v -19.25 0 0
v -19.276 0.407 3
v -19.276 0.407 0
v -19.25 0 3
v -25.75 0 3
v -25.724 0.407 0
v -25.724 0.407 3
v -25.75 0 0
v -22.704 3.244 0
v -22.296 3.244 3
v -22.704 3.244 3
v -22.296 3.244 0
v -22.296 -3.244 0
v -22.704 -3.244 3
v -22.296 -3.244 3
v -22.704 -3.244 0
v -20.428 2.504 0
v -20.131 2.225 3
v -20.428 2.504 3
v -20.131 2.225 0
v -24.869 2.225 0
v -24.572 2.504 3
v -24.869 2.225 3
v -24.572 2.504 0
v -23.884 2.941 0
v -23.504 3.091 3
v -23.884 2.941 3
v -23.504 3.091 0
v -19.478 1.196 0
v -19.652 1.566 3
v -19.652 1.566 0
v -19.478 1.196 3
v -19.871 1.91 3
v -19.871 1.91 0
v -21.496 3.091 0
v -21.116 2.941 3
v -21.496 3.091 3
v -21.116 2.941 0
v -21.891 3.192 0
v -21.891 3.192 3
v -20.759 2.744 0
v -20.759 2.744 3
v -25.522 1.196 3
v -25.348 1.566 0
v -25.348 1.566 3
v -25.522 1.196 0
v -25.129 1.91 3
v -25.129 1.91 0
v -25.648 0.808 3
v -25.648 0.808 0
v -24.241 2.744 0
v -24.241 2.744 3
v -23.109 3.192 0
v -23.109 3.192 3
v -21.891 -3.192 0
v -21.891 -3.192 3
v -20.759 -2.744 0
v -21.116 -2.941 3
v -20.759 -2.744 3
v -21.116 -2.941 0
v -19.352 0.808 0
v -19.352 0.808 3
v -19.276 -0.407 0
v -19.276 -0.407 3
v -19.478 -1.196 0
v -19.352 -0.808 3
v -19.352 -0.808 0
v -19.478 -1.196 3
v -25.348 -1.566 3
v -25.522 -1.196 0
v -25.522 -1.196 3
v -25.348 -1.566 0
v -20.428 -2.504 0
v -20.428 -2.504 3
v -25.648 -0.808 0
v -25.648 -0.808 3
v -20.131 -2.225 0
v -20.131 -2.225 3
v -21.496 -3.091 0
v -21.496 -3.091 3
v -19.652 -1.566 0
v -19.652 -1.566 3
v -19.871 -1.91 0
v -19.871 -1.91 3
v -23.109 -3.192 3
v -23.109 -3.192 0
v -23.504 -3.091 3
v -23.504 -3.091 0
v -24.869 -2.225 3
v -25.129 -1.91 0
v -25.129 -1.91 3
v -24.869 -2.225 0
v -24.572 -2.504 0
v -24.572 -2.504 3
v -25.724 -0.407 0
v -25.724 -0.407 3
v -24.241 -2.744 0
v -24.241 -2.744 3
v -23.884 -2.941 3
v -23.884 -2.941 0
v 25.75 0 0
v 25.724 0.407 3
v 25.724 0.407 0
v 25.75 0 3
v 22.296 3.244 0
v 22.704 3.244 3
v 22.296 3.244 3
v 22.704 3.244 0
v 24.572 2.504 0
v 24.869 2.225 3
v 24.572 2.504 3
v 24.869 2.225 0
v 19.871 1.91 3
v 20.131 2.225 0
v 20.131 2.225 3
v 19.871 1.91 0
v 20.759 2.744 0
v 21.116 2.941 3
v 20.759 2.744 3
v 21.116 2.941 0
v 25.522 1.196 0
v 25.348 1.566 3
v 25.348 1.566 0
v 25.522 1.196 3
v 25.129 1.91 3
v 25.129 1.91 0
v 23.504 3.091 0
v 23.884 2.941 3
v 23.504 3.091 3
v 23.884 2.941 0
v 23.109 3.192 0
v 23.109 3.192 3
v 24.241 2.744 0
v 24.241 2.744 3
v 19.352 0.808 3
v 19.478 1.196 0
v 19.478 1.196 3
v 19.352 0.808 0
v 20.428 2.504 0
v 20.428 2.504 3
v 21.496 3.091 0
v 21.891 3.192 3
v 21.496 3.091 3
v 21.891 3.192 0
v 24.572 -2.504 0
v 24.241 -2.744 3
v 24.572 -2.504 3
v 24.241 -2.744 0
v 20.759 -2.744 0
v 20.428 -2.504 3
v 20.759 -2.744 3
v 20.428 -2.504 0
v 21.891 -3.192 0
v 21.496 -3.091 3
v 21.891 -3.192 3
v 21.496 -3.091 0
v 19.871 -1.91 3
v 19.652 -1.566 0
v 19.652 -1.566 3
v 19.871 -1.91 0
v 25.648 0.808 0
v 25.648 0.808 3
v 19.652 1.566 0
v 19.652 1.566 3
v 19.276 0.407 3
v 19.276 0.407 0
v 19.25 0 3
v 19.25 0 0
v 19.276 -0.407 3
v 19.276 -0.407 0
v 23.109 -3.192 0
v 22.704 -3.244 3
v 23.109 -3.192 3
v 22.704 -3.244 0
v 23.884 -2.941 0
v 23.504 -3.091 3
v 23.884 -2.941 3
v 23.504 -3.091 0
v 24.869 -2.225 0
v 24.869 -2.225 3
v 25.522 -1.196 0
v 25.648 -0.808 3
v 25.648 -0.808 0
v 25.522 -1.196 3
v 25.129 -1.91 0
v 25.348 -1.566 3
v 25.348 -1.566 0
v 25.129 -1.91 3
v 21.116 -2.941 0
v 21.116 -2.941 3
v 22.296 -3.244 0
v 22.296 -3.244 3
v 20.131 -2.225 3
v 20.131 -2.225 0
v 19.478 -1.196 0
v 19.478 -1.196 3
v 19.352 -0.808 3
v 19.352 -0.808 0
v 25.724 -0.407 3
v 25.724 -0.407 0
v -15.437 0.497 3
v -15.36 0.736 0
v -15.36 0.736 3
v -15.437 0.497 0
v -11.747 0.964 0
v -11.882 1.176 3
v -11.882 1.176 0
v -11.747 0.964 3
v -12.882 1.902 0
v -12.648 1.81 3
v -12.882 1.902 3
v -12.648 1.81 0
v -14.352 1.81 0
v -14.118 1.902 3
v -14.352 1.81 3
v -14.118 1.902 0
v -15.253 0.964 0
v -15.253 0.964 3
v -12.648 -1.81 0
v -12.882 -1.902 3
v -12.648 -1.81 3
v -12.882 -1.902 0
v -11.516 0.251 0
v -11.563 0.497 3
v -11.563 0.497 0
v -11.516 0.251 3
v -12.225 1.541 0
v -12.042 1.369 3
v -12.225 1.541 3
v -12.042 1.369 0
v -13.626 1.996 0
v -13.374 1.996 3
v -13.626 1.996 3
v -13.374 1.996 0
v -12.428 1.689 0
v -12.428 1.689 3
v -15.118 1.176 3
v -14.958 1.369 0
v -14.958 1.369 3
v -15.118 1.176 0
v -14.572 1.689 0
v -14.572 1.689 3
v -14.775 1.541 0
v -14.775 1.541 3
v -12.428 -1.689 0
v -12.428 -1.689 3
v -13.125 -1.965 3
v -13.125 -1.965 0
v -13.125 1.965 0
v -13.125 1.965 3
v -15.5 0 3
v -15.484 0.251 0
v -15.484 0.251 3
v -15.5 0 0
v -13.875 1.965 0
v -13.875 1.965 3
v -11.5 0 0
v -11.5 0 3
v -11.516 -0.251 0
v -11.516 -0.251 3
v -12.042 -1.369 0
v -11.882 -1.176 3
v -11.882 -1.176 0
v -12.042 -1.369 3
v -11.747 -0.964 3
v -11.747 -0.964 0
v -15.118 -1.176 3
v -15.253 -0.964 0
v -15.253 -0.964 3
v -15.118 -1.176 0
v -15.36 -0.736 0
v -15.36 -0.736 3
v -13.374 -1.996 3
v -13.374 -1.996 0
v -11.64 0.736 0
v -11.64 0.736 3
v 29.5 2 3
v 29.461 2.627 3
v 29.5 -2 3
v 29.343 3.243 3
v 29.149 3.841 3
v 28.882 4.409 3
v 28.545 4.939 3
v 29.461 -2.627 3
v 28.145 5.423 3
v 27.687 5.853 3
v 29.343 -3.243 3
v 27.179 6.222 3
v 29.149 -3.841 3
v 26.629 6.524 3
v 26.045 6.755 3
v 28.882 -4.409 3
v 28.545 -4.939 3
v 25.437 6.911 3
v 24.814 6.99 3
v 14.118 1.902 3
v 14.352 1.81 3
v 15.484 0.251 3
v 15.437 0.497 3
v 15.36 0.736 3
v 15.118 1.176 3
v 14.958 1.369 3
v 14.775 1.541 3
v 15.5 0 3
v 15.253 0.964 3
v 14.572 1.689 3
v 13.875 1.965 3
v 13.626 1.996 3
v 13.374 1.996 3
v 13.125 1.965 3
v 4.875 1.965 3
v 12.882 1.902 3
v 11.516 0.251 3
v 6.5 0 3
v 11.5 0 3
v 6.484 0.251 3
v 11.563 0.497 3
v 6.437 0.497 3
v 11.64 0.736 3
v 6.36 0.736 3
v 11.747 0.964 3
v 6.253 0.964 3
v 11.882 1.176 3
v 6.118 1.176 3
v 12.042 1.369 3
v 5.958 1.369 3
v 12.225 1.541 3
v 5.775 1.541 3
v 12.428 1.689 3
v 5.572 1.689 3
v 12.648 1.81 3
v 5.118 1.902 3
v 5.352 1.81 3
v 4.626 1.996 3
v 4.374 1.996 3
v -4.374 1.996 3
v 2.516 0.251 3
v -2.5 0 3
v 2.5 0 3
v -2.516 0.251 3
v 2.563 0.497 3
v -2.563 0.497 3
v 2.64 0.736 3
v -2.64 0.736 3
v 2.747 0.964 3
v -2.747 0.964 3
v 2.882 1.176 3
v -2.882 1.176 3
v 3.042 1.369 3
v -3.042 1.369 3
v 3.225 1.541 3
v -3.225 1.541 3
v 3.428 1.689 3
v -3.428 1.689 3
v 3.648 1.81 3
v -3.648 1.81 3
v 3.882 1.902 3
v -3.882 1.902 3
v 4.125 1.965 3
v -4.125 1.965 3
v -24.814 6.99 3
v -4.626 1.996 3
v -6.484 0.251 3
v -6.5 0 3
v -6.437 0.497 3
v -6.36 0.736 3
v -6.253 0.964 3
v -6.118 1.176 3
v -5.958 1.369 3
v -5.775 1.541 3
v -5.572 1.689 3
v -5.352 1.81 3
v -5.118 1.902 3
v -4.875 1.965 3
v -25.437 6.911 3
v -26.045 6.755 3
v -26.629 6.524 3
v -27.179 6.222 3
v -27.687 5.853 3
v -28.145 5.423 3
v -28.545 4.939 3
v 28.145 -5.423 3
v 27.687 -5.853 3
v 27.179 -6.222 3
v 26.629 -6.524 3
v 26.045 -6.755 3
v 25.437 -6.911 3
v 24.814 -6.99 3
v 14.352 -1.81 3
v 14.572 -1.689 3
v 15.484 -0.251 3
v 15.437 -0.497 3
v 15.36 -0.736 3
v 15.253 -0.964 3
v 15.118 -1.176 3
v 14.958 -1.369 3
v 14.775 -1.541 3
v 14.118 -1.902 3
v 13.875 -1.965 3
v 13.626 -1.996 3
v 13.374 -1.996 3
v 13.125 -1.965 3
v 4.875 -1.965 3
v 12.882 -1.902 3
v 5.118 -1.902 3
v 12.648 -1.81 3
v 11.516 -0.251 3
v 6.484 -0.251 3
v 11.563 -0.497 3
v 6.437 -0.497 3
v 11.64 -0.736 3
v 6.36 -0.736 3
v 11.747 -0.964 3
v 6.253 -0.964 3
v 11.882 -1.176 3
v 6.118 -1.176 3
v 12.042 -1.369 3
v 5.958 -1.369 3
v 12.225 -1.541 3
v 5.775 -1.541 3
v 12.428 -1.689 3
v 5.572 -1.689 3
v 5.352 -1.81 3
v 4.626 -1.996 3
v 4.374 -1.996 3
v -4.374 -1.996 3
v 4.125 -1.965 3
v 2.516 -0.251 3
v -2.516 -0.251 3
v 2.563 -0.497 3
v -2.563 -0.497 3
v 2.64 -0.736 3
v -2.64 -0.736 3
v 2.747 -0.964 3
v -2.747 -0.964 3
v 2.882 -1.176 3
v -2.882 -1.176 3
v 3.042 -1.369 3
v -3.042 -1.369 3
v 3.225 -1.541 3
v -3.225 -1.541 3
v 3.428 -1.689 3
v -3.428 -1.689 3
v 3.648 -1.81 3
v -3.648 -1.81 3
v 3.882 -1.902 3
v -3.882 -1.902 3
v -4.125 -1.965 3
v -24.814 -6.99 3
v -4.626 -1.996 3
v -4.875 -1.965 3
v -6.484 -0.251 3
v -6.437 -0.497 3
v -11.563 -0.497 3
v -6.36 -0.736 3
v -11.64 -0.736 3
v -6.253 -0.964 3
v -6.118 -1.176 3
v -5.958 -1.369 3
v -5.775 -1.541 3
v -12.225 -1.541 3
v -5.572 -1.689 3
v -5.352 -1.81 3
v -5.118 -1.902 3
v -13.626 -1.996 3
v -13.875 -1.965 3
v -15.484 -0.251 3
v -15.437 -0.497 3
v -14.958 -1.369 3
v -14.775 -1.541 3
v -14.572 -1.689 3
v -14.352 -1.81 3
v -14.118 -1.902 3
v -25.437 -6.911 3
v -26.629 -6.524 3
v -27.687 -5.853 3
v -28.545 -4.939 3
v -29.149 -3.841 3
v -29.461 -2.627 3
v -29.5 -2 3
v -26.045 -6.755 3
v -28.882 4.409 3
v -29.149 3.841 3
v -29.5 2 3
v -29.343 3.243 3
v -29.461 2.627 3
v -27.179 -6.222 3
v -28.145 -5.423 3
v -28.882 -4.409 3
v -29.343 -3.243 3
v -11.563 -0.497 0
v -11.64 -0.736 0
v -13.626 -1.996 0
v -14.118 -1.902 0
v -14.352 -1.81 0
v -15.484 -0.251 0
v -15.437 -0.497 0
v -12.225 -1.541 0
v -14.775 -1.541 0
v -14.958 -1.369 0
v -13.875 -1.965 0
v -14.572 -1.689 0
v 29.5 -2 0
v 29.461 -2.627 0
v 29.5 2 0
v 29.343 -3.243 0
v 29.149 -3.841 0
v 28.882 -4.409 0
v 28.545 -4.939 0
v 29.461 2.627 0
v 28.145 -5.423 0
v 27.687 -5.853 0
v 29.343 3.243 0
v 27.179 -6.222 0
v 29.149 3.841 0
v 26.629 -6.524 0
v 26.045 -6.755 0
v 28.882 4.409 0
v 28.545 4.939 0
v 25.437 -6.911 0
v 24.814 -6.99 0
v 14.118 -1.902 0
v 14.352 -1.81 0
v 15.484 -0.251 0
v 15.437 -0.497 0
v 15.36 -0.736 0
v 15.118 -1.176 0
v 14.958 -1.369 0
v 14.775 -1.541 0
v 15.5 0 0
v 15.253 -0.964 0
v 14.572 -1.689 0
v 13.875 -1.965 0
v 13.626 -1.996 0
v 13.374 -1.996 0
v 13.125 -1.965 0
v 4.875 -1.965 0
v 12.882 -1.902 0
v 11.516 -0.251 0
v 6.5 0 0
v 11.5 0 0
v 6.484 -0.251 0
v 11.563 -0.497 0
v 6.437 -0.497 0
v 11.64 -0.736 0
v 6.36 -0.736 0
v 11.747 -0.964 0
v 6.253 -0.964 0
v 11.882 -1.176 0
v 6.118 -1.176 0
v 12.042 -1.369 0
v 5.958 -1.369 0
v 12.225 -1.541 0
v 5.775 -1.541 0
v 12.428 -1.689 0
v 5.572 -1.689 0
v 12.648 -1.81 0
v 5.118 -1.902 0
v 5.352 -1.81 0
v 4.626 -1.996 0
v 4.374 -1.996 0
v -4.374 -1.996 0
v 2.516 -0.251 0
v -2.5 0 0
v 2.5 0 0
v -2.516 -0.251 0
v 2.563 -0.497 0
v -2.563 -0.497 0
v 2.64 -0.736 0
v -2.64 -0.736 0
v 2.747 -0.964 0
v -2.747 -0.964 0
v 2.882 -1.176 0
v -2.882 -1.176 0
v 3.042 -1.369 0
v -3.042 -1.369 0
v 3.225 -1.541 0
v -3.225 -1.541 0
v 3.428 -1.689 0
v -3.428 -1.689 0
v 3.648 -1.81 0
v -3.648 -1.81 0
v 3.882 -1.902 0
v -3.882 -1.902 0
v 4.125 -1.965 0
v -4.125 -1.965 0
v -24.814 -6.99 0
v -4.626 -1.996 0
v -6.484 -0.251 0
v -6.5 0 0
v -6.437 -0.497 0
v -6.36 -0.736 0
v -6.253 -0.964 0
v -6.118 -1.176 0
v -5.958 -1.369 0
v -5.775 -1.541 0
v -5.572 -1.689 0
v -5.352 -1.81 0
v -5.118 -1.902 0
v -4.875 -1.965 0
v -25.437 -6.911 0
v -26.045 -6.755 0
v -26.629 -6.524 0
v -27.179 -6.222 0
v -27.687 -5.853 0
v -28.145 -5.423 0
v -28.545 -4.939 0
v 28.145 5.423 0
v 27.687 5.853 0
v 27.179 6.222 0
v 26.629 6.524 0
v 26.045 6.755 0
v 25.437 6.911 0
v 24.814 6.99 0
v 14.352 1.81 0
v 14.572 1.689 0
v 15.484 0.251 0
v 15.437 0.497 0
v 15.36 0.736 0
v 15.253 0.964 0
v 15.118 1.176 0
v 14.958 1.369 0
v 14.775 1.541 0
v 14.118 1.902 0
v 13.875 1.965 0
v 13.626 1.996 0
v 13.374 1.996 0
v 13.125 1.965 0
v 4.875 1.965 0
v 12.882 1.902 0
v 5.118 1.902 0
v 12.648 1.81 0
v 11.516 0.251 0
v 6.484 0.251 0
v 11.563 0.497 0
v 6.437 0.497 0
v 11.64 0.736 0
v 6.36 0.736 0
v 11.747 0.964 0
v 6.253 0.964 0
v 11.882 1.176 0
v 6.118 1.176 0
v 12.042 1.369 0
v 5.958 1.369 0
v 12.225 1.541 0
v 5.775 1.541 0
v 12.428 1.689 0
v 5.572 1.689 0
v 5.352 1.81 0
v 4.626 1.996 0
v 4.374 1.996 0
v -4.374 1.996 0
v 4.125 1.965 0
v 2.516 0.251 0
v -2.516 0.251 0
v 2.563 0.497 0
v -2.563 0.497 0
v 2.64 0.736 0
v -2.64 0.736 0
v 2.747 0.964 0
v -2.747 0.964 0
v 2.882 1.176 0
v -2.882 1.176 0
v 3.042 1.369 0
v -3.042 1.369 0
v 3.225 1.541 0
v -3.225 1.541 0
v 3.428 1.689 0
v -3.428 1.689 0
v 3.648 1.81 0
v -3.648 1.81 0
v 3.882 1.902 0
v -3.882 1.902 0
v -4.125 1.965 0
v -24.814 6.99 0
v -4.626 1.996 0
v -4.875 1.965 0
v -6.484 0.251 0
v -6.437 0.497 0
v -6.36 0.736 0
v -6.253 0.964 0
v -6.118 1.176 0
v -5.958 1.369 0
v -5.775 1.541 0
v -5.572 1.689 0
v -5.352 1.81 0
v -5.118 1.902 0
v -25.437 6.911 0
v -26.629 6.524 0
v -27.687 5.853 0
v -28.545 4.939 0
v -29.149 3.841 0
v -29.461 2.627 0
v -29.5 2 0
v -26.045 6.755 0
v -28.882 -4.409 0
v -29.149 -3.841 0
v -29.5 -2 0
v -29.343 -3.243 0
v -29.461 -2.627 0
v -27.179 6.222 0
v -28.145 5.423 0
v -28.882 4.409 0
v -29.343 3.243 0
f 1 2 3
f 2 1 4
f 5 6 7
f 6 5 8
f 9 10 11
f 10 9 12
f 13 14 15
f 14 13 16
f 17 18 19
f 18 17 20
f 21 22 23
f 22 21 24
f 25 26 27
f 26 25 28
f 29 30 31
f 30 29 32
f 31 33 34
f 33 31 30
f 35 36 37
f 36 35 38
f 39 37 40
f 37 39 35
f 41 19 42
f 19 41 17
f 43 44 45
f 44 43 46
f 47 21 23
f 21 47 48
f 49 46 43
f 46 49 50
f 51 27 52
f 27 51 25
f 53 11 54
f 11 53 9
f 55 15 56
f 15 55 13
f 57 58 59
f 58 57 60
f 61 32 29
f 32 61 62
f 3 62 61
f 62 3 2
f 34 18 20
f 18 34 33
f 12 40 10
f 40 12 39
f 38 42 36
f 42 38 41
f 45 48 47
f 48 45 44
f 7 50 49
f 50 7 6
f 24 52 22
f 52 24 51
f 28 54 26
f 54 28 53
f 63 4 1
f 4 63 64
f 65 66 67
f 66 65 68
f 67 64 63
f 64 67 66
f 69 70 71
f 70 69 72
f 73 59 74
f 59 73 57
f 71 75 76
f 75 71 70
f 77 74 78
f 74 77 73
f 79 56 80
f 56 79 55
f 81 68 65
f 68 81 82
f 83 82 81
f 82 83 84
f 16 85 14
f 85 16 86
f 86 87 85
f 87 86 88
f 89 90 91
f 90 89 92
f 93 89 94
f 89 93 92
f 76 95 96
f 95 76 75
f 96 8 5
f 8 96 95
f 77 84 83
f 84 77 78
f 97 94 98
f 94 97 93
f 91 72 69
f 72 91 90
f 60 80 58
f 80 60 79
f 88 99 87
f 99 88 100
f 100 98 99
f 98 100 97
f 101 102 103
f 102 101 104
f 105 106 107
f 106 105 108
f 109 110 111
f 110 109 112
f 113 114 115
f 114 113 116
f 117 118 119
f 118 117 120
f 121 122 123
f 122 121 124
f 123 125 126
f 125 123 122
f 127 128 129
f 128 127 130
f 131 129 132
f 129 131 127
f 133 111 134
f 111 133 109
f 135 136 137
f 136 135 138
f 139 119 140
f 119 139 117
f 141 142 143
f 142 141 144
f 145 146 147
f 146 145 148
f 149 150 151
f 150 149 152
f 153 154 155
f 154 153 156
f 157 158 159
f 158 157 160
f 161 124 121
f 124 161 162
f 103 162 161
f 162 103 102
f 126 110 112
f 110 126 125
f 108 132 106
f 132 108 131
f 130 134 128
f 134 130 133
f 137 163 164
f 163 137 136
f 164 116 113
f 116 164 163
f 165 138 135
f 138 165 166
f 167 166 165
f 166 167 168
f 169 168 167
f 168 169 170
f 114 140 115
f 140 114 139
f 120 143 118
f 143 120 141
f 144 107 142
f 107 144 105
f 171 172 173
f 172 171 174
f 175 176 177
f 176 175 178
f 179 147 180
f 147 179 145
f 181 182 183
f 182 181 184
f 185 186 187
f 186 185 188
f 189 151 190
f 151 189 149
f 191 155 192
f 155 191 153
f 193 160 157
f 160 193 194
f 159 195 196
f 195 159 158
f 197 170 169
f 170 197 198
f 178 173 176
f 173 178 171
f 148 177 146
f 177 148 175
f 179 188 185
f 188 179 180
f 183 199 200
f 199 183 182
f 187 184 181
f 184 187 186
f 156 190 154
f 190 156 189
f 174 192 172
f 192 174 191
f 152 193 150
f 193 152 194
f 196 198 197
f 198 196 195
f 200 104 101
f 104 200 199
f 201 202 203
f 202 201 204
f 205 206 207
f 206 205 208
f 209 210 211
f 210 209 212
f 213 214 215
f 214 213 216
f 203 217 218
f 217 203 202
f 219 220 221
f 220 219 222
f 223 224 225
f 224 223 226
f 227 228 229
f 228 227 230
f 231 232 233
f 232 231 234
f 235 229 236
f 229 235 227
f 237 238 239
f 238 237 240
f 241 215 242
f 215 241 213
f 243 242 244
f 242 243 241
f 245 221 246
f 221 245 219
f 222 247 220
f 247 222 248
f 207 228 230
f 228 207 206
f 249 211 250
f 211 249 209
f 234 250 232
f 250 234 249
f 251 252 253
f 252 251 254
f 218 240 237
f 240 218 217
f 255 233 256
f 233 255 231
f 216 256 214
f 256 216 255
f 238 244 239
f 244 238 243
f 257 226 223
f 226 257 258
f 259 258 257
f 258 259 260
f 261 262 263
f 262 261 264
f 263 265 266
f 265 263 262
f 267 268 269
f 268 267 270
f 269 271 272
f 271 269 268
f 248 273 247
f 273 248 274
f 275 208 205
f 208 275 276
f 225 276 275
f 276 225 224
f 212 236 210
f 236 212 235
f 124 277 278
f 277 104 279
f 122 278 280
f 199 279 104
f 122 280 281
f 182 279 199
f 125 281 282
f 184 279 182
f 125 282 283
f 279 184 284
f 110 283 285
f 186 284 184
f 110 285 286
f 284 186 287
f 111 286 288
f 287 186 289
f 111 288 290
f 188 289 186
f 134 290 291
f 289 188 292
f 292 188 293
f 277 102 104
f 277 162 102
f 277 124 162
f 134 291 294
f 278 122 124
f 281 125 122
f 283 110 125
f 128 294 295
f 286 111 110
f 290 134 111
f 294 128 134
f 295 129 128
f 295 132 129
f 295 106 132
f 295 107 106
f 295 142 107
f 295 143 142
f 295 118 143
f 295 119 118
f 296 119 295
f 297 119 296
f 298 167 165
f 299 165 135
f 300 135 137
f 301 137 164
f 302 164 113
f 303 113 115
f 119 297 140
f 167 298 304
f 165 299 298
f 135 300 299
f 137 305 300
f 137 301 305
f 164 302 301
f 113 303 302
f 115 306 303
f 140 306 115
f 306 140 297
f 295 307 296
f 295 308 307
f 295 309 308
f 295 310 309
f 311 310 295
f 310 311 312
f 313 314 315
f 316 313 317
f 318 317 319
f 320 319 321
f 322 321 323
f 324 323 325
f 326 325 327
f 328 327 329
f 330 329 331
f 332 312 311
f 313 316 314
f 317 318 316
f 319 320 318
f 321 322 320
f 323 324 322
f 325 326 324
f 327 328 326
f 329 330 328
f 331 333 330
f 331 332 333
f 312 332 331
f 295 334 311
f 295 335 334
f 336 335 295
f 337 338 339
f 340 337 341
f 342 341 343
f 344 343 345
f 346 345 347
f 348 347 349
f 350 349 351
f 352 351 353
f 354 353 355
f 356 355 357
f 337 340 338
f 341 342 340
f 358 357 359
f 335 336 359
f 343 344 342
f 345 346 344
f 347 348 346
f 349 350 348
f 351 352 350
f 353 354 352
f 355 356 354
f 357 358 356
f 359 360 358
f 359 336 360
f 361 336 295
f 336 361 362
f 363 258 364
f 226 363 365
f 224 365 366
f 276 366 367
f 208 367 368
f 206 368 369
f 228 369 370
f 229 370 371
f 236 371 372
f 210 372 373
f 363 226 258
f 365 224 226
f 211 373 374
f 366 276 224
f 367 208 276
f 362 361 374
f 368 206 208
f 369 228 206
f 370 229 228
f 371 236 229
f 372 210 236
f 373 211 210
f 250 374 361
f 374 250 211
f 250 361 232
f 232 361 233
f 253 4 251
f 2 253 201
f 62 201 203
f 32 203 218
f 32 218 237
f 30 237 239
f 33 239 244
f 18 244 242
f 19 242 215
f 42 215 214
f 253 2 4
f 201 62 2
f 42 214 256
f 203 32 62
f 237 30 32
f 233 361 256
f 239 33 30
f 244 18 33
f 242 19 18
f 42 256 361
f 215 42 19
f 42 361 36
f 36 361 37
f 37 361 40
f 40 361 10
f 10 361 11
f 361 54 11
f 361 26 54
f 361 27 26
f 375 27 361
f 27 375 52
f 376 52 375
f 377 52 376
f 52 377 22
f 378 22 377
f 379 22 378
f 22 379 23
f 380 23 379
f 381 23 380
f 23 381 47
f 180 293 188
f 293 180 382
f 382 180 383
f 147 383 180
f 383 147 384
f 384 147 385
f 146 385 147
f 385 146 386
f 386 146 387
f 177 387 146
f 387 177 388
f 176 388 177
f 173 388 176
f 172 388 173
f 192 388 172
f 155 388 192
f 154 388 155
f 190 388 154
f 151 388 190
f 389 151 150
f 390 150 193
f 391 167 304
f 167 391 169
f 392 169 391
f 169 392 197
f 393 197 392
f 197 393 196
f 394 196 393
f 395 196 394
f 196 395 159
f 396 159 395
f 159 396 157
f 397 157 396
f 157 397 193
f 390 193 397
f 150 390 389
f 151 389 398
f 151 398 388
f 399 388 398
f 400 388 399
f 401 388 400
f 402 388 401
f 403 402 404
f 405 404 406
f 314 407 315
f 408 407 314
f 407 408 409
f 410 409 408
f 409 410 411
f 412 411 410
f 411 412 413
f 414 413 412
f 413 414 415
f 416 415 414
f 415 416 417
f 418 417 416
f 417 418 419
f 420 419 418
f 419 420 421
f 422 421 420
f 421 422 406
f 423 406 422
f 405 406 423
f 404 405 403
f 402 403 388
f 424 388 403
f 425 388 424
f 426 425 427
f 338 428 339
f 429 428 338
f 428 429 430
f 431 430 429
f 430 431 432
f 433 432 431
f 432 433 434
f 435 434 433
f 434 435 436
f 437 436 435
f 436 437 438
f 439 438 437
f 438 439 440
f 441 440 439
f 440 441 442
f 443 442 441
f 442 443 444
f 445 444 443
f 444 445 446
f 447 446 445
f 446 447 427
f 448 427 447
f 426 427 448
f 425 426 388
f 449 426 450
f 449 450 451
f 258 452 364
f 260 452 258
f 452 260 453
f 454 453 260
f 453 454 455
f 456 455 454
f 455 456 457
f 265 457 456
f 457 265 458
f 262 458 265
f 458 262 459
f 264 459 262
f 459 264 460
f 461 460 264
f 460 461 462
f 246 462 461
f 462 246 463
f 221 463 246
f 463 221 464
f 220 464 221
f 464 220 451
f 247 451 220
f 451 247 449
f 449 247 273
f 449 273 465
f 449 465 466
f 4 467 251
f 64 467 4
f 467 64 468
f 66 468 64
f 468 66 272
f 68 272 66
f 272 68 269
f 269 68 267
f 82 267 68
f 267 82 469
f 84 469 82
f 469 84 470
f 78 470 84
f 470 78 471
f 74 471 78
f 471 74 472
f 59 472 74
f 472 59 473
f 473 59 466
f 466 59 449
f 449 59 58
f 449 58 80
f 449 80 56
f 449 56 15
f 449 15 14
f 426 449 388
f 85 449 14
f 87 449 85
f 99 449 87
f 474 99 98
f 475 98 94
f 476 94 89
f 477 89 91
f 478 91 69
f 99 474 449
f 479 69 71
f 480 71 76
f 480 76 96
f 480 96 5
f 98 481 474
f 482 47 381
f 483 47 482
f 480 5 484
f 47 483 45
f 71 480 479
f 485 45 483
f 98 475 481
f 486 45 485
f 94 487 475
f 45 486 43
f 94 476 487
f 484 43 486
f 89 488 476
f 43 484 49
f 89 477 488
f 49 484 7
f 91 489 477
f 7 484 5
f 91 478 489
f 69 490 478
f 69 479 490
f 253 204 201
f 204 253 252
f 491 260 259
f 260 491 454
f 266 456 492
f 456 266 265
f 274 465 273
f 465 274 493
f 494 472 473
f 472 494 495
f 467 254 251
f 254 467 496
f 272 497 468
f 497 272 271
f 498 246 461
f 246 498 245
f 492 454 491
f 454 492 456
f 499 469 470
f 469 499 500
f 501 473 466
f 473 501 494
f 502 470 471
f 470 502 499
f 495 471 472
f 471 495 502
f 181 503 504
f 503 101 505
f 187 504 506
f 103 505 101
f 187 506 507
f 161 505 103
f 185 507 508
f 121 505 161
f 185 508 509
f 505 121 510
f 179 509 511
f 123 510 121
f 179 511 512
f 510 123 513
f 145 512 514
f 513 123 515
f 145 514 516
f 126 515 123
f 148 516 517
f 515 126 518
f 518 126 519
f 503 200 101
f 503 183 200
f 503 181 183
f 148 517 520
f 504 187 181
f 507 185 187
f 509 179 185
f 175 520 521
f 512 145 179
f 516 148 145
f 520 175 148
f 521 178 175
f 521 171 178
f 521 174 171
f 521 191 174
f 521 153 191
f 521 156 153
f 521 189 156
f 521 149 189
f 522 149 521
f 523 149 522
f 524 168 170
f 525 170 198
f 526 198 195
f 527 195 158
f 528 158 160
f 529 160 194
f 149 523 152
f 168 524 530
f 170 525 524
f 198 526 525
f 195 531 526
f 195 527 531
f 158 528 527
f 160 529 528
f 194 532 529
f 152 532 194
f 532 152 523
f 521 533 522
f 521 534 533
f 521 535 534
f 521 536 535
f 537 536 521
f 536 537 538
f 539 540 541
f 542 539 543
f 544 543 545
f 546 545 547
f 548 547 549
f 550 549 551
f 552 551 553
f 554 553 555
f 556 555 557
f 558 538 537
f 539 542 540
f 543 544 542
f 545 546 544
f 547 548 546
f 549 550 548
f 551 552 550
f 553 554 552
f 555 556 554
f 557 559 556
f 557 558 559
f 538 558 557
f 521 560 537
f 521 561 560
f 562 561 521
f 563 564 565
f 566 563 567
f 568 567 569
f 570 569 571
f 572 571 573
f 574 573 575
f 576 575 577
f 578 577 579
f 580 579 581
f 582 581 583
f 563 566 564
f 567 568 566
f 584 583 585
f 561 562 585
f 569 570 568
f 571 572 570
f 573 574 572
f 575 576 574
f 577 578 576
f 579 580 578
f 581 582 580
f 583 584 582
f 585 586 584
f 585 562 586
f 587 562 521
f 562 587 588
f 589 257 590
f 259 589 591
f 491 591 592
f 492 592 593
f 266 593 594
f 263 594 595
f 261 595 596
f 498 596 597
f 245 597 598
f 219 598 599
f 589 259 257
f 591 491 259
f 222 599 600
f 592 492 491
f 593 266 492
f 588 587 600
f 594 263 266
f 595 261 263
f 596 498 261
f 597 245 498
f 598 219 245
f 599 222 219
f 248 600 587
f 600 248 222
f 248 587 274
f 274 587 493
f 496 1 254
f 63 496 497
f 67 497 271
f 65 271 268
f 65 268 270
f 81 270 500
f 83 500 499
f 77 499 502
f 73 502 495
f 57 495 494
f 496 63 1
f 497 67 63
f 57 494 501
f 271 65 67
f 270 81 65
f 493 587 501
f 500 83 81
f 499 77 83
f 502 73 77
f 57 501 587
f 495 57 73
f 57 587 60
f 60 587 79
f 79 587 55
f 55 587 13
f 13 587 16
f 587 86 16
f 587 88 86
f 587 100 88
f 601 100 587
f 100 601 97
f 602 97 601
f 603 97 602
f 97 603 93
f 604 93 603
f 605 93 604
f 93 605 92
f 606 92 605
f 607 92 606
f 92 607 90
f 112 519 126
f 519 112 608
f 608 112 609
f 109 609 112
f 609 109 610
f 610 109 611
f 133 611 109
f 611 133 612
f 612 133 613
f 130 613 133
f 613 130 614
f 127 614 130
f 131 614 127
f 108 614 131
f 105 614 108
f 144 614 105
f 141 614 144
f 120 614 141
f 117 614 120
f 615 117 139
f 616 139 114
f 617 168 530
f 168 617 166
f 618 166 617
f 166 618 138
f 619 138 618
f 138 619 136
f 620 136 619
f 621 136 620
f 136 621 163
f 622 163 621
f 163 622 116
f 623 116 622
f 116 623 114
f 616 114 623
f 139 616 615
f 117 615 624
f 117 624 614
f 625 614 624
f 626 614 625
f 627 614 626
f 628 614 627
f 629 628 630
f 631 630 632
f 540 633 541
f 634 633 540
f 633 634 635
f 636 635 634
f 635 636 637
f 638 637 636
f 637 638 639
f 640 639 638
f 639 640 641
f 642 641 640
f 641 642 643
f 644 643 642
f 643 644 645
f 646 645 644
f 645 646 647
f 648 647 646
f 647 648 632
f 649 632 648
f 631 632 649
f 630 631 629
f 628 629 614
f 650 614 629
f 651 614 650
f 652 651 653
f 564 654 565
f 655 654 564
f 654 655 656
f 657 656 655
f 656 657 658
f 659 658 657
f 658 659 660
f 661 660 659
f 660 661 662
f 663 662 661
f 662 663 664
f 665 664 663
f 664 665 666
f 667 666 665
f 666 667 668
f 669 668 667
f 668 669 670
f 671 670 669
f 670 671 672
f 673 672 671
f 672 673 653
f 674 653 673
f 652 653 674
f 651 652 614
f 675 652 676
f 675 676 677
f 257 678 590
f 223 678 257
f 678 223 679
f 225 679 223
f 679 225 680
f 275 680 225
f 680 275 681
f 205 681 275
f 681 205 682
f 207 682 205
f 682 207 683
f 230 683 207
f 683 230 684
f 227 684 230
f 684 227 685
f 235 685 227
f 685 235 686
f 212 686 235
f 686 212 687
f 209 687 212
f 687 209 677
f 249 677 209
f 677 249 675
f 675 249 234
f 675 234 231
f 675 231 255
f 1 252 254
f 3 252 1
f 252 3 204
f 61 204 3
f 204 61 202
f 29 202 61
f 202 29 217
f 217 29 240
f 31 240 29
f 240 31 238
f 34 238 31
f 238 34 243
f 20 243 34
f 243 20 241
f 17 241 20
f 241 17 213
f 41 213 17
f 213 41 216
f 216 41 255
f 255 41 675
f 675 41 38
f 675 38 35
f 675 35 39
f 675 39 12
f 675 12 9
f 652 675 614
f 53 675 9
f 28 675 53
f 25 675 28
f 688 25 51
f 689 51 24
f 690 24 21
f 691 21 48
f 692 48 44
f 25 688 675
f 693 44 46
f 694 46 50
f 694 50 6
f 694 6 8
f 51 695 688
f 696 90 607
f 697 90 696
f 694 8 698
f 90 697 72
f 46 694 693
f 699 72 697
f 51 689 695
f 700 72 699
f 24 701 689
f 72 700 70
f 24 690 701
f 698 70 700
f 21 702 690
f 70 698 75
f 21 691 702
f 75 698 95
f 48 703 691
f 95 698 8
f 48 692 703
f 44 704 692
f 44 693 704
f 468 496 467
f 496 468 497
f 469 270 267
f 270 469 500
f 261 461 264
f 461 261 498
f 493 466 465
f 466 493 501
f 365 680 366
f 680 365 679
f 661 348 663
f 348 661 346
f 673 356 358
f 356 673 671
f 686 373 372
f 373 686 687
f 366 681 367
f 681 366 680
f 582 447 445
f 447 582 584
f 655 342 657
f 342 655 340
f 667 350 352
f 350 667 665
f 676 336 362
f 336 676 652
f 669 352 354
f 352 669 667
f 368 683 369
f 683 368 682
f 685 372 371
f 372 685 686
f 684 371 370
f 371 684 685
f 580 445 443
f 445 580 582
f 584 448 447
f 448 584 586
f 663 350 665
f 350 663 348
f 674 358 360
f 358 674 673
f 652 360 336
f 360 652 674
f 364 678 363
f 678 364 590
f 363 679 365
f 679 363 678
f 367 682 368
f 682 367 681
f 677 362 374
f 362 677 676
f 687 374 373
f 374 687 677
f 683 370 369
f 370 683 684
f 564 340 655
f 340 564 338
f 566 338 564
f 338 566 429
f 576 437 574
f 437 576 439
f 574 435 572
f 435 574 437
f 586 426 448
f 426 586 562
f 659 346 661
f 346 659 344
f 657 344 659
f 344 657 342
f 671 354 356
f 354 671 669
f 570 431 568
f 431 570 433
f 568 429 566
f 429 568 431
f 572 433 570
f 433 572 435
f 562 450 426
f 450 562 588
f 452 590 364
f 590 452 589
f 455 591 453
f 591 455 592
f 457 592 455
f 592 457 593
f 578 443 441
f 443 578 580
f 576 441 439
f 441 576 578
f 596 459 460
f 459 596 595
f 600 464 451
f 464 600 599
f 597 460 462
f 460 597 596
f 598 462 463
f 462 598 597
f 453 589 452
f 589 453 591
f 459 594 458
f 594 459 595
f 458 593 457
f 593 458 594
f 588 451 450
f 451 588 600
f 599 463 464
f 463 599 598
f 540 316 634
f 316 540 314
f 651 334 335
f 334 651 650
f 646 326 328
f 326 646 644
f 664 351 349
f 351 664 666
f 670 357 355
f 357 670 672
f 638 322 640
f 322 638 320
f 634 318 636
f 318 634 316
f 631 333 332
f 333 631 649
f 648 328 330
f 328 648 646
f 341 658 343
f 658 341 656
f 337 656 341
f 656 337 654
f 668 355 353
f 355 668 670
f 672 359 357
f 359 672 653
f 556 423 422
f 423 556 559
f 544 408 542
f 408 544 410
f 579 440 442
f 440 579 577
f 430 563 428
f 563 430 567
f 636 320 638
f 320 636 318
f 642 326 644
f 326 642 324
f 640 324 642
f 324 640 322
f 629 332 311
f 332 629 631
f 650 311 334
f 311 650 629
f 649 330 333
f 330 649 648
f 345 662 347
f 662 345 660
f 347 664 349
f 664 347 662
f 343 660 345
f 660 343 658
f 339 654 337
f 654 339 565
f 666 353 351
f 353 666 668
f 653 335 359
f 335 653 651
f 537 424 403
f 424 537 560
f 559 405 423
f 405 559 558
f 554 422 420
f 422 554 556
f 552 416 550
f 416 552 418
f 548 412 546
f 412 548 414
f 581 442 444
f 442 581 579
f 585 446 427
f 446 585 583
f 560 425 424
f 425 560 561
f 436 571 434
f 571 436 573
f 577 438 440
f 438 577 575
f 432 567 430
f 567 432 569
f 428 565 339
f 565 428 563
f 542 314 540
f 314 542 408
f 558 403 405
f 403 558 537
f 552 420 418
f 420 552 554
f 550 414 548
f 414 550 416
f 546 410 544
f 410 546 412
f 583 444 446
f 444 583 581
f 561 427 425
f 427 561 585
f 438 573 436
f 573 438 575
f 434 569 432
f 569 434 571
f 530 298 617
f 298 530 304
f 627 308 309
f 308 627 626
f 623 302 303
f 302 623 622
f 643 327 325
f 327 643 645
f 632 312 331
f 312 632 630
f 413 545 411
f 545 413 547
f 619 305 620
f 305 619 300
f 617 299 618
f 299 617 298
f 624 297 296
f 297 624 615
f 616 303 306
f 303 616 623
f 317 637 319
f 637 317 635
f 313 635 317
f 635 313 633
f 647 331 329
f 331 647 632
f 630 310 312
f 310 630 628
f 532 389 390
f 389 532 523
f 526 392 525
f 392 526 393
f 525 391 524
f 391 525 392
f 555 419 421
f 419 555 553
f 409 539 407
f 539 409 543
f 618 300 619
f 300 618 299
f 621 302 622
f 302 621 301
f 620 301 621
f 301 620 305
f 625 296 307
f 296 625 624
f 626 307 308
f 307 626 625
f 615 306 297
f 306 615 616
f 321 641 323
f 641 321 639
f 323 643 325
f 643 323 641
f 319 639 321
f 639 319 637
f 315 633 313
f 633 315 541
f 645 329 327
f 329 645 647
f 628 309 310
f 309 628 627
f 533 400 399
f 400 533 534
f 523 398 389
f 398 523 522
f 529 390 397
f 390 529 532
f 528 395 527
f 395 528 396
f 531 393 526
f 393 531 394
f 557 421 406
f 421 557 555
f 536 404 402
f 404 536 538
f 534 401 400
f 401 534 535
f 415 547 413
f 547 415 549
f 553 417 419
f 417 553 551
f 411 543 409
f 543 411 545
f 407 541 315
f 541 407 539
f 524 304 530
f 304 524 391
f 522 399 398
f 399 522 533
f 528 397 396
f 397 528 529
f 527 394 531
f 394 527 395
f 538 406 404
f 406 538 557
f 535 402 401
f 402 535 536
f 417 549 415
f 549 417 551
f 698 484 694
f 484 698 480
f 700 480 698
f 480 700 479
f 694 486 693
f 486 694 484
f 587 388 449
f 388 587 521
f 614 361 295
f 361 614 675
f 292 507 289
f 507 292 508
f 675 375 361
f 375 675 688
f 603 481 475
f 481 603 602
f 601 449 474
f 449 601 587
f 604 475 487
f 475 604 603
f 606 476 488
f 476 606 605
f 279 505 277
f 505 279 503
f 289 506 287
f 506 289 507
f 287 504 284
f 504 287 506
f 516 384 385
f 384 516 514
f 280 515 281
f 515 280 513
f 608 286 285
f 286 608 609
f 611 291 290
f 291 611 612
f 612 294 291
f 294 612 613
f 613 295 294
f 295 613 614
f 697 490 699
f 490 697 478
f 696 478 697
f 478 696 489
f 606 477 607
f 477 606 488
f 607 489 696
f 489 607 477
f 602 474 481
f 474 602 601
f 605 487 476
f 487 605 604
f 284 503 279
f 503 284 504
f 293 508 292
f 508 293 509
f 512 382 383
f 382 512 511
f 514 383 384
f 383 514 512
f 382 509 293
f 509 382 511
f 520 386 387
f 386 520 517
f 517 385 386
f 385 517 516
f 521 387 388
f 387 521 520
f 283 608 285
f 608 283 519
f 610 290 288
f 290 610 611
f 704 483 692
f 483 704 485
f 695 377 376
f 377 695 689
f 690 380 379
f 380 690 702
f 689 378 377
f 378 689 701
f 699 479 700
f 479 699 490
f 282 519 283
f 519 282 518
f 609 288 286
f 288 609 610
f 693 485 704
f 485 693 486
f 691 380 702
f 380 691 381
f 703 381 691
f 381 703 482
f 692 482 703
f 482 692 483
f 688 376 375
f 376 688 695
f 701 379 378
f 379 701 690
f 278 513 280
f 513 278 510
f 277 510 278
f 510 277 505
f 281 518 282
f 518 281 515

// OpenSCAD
$fn = 50;


difference() {
	union() {
		hull() {
			translate(v = [-24.5000000000, 2.0000000000, 0]) {
				cylinder(h = 3, r = 5);
			}
			translate(v = [24.5000000000, 2.0000000000, 0]) {
				cylinder(h = 3, r = 5);
			}
			translate(v = [-24.5000000000, -2.0000000000, 0]) {
				cylinder(h = 3, r = 5);
			}
			translate(v = [24.5000000000, -2.0000000000, 0]) {
				cylinder(h = 3, r = 5);
			}
		}
	}
	union() {
		#translate(v = [-22.5000000000, 0.0000000000, 0]) {
			cylinder(h = 3, r = 3.2500000000);
		}
		#translate(v = [22.5000000000, 0.0000000000, 0]) {
			cylinder(h = 3, r = 3.2500000000);
		}
		#translate(v = [-22.5000000000, 0.0000000000, -100.0000000000]) {
			cylinder(h = 200, r = 3.2500000000);
		}
		#translate(v = [-22.5000000000, 0.0000000000, -100.0000000000]) {
			cylinder(h = 200, r = 3.2500000000);
		}
		#translate(v = [22.5000000000, 0.0000000000, -100.0000000000]) {
			cylinder(h = 200, r = 3.2500000000);
		}
		#translate(v = [22.5000000000, 0.0000000000, -100.0000000000]) {
			cylinder(h = 200, r = 3.2500000000);
		}
		#translate(v = [-22.5000000000, 0.0000000000, 0]) {
			cylinder(h = 3, r = 1.8000000000);
		}
		#translate(v = [22.5000000000, 0.0000000000, 0]) {
			cylinder(h = 3, r = 1.8000000000);
		}
		#translate(v = [-22.5000000000, 0.0000000000, 0]) {
			cylinder(h = 3, r = 1.8000000000);
		}
		#translate(v = [22.5000000000, 0.0000000000, 0]) {
			cylinder(h = 3, r = 1.8000000000);
		}
		#translate(v = [-22.5000000000, 0.0000000000, 0]) {
			cylinder(h = 3, r = 1.8000000000);
		}
		#translate(v = [22.5000000000, 0.0000000000, 0]) {
			cylinder(h = 3, r = 1.8000000000);
		}
		#translate(v = [-13.5000000000, 0, 0]) {
			cylinder(h = 3, r = 2.0000000000);
		}
		#translate(v = [-4.5000000000, 0, 0]) {
			cylinder(h = 3, r = 2.0000000000);
		}
		#translate(v = [4.5000000000, 0, 0]) {
			cylinder(h = 3, r = 2.0000000000);
		}
		#translate(v = [13.5000000000, 0, 0]) {
			cylinder(h = 3, r = 2.0000000000);
		}
	}
}
